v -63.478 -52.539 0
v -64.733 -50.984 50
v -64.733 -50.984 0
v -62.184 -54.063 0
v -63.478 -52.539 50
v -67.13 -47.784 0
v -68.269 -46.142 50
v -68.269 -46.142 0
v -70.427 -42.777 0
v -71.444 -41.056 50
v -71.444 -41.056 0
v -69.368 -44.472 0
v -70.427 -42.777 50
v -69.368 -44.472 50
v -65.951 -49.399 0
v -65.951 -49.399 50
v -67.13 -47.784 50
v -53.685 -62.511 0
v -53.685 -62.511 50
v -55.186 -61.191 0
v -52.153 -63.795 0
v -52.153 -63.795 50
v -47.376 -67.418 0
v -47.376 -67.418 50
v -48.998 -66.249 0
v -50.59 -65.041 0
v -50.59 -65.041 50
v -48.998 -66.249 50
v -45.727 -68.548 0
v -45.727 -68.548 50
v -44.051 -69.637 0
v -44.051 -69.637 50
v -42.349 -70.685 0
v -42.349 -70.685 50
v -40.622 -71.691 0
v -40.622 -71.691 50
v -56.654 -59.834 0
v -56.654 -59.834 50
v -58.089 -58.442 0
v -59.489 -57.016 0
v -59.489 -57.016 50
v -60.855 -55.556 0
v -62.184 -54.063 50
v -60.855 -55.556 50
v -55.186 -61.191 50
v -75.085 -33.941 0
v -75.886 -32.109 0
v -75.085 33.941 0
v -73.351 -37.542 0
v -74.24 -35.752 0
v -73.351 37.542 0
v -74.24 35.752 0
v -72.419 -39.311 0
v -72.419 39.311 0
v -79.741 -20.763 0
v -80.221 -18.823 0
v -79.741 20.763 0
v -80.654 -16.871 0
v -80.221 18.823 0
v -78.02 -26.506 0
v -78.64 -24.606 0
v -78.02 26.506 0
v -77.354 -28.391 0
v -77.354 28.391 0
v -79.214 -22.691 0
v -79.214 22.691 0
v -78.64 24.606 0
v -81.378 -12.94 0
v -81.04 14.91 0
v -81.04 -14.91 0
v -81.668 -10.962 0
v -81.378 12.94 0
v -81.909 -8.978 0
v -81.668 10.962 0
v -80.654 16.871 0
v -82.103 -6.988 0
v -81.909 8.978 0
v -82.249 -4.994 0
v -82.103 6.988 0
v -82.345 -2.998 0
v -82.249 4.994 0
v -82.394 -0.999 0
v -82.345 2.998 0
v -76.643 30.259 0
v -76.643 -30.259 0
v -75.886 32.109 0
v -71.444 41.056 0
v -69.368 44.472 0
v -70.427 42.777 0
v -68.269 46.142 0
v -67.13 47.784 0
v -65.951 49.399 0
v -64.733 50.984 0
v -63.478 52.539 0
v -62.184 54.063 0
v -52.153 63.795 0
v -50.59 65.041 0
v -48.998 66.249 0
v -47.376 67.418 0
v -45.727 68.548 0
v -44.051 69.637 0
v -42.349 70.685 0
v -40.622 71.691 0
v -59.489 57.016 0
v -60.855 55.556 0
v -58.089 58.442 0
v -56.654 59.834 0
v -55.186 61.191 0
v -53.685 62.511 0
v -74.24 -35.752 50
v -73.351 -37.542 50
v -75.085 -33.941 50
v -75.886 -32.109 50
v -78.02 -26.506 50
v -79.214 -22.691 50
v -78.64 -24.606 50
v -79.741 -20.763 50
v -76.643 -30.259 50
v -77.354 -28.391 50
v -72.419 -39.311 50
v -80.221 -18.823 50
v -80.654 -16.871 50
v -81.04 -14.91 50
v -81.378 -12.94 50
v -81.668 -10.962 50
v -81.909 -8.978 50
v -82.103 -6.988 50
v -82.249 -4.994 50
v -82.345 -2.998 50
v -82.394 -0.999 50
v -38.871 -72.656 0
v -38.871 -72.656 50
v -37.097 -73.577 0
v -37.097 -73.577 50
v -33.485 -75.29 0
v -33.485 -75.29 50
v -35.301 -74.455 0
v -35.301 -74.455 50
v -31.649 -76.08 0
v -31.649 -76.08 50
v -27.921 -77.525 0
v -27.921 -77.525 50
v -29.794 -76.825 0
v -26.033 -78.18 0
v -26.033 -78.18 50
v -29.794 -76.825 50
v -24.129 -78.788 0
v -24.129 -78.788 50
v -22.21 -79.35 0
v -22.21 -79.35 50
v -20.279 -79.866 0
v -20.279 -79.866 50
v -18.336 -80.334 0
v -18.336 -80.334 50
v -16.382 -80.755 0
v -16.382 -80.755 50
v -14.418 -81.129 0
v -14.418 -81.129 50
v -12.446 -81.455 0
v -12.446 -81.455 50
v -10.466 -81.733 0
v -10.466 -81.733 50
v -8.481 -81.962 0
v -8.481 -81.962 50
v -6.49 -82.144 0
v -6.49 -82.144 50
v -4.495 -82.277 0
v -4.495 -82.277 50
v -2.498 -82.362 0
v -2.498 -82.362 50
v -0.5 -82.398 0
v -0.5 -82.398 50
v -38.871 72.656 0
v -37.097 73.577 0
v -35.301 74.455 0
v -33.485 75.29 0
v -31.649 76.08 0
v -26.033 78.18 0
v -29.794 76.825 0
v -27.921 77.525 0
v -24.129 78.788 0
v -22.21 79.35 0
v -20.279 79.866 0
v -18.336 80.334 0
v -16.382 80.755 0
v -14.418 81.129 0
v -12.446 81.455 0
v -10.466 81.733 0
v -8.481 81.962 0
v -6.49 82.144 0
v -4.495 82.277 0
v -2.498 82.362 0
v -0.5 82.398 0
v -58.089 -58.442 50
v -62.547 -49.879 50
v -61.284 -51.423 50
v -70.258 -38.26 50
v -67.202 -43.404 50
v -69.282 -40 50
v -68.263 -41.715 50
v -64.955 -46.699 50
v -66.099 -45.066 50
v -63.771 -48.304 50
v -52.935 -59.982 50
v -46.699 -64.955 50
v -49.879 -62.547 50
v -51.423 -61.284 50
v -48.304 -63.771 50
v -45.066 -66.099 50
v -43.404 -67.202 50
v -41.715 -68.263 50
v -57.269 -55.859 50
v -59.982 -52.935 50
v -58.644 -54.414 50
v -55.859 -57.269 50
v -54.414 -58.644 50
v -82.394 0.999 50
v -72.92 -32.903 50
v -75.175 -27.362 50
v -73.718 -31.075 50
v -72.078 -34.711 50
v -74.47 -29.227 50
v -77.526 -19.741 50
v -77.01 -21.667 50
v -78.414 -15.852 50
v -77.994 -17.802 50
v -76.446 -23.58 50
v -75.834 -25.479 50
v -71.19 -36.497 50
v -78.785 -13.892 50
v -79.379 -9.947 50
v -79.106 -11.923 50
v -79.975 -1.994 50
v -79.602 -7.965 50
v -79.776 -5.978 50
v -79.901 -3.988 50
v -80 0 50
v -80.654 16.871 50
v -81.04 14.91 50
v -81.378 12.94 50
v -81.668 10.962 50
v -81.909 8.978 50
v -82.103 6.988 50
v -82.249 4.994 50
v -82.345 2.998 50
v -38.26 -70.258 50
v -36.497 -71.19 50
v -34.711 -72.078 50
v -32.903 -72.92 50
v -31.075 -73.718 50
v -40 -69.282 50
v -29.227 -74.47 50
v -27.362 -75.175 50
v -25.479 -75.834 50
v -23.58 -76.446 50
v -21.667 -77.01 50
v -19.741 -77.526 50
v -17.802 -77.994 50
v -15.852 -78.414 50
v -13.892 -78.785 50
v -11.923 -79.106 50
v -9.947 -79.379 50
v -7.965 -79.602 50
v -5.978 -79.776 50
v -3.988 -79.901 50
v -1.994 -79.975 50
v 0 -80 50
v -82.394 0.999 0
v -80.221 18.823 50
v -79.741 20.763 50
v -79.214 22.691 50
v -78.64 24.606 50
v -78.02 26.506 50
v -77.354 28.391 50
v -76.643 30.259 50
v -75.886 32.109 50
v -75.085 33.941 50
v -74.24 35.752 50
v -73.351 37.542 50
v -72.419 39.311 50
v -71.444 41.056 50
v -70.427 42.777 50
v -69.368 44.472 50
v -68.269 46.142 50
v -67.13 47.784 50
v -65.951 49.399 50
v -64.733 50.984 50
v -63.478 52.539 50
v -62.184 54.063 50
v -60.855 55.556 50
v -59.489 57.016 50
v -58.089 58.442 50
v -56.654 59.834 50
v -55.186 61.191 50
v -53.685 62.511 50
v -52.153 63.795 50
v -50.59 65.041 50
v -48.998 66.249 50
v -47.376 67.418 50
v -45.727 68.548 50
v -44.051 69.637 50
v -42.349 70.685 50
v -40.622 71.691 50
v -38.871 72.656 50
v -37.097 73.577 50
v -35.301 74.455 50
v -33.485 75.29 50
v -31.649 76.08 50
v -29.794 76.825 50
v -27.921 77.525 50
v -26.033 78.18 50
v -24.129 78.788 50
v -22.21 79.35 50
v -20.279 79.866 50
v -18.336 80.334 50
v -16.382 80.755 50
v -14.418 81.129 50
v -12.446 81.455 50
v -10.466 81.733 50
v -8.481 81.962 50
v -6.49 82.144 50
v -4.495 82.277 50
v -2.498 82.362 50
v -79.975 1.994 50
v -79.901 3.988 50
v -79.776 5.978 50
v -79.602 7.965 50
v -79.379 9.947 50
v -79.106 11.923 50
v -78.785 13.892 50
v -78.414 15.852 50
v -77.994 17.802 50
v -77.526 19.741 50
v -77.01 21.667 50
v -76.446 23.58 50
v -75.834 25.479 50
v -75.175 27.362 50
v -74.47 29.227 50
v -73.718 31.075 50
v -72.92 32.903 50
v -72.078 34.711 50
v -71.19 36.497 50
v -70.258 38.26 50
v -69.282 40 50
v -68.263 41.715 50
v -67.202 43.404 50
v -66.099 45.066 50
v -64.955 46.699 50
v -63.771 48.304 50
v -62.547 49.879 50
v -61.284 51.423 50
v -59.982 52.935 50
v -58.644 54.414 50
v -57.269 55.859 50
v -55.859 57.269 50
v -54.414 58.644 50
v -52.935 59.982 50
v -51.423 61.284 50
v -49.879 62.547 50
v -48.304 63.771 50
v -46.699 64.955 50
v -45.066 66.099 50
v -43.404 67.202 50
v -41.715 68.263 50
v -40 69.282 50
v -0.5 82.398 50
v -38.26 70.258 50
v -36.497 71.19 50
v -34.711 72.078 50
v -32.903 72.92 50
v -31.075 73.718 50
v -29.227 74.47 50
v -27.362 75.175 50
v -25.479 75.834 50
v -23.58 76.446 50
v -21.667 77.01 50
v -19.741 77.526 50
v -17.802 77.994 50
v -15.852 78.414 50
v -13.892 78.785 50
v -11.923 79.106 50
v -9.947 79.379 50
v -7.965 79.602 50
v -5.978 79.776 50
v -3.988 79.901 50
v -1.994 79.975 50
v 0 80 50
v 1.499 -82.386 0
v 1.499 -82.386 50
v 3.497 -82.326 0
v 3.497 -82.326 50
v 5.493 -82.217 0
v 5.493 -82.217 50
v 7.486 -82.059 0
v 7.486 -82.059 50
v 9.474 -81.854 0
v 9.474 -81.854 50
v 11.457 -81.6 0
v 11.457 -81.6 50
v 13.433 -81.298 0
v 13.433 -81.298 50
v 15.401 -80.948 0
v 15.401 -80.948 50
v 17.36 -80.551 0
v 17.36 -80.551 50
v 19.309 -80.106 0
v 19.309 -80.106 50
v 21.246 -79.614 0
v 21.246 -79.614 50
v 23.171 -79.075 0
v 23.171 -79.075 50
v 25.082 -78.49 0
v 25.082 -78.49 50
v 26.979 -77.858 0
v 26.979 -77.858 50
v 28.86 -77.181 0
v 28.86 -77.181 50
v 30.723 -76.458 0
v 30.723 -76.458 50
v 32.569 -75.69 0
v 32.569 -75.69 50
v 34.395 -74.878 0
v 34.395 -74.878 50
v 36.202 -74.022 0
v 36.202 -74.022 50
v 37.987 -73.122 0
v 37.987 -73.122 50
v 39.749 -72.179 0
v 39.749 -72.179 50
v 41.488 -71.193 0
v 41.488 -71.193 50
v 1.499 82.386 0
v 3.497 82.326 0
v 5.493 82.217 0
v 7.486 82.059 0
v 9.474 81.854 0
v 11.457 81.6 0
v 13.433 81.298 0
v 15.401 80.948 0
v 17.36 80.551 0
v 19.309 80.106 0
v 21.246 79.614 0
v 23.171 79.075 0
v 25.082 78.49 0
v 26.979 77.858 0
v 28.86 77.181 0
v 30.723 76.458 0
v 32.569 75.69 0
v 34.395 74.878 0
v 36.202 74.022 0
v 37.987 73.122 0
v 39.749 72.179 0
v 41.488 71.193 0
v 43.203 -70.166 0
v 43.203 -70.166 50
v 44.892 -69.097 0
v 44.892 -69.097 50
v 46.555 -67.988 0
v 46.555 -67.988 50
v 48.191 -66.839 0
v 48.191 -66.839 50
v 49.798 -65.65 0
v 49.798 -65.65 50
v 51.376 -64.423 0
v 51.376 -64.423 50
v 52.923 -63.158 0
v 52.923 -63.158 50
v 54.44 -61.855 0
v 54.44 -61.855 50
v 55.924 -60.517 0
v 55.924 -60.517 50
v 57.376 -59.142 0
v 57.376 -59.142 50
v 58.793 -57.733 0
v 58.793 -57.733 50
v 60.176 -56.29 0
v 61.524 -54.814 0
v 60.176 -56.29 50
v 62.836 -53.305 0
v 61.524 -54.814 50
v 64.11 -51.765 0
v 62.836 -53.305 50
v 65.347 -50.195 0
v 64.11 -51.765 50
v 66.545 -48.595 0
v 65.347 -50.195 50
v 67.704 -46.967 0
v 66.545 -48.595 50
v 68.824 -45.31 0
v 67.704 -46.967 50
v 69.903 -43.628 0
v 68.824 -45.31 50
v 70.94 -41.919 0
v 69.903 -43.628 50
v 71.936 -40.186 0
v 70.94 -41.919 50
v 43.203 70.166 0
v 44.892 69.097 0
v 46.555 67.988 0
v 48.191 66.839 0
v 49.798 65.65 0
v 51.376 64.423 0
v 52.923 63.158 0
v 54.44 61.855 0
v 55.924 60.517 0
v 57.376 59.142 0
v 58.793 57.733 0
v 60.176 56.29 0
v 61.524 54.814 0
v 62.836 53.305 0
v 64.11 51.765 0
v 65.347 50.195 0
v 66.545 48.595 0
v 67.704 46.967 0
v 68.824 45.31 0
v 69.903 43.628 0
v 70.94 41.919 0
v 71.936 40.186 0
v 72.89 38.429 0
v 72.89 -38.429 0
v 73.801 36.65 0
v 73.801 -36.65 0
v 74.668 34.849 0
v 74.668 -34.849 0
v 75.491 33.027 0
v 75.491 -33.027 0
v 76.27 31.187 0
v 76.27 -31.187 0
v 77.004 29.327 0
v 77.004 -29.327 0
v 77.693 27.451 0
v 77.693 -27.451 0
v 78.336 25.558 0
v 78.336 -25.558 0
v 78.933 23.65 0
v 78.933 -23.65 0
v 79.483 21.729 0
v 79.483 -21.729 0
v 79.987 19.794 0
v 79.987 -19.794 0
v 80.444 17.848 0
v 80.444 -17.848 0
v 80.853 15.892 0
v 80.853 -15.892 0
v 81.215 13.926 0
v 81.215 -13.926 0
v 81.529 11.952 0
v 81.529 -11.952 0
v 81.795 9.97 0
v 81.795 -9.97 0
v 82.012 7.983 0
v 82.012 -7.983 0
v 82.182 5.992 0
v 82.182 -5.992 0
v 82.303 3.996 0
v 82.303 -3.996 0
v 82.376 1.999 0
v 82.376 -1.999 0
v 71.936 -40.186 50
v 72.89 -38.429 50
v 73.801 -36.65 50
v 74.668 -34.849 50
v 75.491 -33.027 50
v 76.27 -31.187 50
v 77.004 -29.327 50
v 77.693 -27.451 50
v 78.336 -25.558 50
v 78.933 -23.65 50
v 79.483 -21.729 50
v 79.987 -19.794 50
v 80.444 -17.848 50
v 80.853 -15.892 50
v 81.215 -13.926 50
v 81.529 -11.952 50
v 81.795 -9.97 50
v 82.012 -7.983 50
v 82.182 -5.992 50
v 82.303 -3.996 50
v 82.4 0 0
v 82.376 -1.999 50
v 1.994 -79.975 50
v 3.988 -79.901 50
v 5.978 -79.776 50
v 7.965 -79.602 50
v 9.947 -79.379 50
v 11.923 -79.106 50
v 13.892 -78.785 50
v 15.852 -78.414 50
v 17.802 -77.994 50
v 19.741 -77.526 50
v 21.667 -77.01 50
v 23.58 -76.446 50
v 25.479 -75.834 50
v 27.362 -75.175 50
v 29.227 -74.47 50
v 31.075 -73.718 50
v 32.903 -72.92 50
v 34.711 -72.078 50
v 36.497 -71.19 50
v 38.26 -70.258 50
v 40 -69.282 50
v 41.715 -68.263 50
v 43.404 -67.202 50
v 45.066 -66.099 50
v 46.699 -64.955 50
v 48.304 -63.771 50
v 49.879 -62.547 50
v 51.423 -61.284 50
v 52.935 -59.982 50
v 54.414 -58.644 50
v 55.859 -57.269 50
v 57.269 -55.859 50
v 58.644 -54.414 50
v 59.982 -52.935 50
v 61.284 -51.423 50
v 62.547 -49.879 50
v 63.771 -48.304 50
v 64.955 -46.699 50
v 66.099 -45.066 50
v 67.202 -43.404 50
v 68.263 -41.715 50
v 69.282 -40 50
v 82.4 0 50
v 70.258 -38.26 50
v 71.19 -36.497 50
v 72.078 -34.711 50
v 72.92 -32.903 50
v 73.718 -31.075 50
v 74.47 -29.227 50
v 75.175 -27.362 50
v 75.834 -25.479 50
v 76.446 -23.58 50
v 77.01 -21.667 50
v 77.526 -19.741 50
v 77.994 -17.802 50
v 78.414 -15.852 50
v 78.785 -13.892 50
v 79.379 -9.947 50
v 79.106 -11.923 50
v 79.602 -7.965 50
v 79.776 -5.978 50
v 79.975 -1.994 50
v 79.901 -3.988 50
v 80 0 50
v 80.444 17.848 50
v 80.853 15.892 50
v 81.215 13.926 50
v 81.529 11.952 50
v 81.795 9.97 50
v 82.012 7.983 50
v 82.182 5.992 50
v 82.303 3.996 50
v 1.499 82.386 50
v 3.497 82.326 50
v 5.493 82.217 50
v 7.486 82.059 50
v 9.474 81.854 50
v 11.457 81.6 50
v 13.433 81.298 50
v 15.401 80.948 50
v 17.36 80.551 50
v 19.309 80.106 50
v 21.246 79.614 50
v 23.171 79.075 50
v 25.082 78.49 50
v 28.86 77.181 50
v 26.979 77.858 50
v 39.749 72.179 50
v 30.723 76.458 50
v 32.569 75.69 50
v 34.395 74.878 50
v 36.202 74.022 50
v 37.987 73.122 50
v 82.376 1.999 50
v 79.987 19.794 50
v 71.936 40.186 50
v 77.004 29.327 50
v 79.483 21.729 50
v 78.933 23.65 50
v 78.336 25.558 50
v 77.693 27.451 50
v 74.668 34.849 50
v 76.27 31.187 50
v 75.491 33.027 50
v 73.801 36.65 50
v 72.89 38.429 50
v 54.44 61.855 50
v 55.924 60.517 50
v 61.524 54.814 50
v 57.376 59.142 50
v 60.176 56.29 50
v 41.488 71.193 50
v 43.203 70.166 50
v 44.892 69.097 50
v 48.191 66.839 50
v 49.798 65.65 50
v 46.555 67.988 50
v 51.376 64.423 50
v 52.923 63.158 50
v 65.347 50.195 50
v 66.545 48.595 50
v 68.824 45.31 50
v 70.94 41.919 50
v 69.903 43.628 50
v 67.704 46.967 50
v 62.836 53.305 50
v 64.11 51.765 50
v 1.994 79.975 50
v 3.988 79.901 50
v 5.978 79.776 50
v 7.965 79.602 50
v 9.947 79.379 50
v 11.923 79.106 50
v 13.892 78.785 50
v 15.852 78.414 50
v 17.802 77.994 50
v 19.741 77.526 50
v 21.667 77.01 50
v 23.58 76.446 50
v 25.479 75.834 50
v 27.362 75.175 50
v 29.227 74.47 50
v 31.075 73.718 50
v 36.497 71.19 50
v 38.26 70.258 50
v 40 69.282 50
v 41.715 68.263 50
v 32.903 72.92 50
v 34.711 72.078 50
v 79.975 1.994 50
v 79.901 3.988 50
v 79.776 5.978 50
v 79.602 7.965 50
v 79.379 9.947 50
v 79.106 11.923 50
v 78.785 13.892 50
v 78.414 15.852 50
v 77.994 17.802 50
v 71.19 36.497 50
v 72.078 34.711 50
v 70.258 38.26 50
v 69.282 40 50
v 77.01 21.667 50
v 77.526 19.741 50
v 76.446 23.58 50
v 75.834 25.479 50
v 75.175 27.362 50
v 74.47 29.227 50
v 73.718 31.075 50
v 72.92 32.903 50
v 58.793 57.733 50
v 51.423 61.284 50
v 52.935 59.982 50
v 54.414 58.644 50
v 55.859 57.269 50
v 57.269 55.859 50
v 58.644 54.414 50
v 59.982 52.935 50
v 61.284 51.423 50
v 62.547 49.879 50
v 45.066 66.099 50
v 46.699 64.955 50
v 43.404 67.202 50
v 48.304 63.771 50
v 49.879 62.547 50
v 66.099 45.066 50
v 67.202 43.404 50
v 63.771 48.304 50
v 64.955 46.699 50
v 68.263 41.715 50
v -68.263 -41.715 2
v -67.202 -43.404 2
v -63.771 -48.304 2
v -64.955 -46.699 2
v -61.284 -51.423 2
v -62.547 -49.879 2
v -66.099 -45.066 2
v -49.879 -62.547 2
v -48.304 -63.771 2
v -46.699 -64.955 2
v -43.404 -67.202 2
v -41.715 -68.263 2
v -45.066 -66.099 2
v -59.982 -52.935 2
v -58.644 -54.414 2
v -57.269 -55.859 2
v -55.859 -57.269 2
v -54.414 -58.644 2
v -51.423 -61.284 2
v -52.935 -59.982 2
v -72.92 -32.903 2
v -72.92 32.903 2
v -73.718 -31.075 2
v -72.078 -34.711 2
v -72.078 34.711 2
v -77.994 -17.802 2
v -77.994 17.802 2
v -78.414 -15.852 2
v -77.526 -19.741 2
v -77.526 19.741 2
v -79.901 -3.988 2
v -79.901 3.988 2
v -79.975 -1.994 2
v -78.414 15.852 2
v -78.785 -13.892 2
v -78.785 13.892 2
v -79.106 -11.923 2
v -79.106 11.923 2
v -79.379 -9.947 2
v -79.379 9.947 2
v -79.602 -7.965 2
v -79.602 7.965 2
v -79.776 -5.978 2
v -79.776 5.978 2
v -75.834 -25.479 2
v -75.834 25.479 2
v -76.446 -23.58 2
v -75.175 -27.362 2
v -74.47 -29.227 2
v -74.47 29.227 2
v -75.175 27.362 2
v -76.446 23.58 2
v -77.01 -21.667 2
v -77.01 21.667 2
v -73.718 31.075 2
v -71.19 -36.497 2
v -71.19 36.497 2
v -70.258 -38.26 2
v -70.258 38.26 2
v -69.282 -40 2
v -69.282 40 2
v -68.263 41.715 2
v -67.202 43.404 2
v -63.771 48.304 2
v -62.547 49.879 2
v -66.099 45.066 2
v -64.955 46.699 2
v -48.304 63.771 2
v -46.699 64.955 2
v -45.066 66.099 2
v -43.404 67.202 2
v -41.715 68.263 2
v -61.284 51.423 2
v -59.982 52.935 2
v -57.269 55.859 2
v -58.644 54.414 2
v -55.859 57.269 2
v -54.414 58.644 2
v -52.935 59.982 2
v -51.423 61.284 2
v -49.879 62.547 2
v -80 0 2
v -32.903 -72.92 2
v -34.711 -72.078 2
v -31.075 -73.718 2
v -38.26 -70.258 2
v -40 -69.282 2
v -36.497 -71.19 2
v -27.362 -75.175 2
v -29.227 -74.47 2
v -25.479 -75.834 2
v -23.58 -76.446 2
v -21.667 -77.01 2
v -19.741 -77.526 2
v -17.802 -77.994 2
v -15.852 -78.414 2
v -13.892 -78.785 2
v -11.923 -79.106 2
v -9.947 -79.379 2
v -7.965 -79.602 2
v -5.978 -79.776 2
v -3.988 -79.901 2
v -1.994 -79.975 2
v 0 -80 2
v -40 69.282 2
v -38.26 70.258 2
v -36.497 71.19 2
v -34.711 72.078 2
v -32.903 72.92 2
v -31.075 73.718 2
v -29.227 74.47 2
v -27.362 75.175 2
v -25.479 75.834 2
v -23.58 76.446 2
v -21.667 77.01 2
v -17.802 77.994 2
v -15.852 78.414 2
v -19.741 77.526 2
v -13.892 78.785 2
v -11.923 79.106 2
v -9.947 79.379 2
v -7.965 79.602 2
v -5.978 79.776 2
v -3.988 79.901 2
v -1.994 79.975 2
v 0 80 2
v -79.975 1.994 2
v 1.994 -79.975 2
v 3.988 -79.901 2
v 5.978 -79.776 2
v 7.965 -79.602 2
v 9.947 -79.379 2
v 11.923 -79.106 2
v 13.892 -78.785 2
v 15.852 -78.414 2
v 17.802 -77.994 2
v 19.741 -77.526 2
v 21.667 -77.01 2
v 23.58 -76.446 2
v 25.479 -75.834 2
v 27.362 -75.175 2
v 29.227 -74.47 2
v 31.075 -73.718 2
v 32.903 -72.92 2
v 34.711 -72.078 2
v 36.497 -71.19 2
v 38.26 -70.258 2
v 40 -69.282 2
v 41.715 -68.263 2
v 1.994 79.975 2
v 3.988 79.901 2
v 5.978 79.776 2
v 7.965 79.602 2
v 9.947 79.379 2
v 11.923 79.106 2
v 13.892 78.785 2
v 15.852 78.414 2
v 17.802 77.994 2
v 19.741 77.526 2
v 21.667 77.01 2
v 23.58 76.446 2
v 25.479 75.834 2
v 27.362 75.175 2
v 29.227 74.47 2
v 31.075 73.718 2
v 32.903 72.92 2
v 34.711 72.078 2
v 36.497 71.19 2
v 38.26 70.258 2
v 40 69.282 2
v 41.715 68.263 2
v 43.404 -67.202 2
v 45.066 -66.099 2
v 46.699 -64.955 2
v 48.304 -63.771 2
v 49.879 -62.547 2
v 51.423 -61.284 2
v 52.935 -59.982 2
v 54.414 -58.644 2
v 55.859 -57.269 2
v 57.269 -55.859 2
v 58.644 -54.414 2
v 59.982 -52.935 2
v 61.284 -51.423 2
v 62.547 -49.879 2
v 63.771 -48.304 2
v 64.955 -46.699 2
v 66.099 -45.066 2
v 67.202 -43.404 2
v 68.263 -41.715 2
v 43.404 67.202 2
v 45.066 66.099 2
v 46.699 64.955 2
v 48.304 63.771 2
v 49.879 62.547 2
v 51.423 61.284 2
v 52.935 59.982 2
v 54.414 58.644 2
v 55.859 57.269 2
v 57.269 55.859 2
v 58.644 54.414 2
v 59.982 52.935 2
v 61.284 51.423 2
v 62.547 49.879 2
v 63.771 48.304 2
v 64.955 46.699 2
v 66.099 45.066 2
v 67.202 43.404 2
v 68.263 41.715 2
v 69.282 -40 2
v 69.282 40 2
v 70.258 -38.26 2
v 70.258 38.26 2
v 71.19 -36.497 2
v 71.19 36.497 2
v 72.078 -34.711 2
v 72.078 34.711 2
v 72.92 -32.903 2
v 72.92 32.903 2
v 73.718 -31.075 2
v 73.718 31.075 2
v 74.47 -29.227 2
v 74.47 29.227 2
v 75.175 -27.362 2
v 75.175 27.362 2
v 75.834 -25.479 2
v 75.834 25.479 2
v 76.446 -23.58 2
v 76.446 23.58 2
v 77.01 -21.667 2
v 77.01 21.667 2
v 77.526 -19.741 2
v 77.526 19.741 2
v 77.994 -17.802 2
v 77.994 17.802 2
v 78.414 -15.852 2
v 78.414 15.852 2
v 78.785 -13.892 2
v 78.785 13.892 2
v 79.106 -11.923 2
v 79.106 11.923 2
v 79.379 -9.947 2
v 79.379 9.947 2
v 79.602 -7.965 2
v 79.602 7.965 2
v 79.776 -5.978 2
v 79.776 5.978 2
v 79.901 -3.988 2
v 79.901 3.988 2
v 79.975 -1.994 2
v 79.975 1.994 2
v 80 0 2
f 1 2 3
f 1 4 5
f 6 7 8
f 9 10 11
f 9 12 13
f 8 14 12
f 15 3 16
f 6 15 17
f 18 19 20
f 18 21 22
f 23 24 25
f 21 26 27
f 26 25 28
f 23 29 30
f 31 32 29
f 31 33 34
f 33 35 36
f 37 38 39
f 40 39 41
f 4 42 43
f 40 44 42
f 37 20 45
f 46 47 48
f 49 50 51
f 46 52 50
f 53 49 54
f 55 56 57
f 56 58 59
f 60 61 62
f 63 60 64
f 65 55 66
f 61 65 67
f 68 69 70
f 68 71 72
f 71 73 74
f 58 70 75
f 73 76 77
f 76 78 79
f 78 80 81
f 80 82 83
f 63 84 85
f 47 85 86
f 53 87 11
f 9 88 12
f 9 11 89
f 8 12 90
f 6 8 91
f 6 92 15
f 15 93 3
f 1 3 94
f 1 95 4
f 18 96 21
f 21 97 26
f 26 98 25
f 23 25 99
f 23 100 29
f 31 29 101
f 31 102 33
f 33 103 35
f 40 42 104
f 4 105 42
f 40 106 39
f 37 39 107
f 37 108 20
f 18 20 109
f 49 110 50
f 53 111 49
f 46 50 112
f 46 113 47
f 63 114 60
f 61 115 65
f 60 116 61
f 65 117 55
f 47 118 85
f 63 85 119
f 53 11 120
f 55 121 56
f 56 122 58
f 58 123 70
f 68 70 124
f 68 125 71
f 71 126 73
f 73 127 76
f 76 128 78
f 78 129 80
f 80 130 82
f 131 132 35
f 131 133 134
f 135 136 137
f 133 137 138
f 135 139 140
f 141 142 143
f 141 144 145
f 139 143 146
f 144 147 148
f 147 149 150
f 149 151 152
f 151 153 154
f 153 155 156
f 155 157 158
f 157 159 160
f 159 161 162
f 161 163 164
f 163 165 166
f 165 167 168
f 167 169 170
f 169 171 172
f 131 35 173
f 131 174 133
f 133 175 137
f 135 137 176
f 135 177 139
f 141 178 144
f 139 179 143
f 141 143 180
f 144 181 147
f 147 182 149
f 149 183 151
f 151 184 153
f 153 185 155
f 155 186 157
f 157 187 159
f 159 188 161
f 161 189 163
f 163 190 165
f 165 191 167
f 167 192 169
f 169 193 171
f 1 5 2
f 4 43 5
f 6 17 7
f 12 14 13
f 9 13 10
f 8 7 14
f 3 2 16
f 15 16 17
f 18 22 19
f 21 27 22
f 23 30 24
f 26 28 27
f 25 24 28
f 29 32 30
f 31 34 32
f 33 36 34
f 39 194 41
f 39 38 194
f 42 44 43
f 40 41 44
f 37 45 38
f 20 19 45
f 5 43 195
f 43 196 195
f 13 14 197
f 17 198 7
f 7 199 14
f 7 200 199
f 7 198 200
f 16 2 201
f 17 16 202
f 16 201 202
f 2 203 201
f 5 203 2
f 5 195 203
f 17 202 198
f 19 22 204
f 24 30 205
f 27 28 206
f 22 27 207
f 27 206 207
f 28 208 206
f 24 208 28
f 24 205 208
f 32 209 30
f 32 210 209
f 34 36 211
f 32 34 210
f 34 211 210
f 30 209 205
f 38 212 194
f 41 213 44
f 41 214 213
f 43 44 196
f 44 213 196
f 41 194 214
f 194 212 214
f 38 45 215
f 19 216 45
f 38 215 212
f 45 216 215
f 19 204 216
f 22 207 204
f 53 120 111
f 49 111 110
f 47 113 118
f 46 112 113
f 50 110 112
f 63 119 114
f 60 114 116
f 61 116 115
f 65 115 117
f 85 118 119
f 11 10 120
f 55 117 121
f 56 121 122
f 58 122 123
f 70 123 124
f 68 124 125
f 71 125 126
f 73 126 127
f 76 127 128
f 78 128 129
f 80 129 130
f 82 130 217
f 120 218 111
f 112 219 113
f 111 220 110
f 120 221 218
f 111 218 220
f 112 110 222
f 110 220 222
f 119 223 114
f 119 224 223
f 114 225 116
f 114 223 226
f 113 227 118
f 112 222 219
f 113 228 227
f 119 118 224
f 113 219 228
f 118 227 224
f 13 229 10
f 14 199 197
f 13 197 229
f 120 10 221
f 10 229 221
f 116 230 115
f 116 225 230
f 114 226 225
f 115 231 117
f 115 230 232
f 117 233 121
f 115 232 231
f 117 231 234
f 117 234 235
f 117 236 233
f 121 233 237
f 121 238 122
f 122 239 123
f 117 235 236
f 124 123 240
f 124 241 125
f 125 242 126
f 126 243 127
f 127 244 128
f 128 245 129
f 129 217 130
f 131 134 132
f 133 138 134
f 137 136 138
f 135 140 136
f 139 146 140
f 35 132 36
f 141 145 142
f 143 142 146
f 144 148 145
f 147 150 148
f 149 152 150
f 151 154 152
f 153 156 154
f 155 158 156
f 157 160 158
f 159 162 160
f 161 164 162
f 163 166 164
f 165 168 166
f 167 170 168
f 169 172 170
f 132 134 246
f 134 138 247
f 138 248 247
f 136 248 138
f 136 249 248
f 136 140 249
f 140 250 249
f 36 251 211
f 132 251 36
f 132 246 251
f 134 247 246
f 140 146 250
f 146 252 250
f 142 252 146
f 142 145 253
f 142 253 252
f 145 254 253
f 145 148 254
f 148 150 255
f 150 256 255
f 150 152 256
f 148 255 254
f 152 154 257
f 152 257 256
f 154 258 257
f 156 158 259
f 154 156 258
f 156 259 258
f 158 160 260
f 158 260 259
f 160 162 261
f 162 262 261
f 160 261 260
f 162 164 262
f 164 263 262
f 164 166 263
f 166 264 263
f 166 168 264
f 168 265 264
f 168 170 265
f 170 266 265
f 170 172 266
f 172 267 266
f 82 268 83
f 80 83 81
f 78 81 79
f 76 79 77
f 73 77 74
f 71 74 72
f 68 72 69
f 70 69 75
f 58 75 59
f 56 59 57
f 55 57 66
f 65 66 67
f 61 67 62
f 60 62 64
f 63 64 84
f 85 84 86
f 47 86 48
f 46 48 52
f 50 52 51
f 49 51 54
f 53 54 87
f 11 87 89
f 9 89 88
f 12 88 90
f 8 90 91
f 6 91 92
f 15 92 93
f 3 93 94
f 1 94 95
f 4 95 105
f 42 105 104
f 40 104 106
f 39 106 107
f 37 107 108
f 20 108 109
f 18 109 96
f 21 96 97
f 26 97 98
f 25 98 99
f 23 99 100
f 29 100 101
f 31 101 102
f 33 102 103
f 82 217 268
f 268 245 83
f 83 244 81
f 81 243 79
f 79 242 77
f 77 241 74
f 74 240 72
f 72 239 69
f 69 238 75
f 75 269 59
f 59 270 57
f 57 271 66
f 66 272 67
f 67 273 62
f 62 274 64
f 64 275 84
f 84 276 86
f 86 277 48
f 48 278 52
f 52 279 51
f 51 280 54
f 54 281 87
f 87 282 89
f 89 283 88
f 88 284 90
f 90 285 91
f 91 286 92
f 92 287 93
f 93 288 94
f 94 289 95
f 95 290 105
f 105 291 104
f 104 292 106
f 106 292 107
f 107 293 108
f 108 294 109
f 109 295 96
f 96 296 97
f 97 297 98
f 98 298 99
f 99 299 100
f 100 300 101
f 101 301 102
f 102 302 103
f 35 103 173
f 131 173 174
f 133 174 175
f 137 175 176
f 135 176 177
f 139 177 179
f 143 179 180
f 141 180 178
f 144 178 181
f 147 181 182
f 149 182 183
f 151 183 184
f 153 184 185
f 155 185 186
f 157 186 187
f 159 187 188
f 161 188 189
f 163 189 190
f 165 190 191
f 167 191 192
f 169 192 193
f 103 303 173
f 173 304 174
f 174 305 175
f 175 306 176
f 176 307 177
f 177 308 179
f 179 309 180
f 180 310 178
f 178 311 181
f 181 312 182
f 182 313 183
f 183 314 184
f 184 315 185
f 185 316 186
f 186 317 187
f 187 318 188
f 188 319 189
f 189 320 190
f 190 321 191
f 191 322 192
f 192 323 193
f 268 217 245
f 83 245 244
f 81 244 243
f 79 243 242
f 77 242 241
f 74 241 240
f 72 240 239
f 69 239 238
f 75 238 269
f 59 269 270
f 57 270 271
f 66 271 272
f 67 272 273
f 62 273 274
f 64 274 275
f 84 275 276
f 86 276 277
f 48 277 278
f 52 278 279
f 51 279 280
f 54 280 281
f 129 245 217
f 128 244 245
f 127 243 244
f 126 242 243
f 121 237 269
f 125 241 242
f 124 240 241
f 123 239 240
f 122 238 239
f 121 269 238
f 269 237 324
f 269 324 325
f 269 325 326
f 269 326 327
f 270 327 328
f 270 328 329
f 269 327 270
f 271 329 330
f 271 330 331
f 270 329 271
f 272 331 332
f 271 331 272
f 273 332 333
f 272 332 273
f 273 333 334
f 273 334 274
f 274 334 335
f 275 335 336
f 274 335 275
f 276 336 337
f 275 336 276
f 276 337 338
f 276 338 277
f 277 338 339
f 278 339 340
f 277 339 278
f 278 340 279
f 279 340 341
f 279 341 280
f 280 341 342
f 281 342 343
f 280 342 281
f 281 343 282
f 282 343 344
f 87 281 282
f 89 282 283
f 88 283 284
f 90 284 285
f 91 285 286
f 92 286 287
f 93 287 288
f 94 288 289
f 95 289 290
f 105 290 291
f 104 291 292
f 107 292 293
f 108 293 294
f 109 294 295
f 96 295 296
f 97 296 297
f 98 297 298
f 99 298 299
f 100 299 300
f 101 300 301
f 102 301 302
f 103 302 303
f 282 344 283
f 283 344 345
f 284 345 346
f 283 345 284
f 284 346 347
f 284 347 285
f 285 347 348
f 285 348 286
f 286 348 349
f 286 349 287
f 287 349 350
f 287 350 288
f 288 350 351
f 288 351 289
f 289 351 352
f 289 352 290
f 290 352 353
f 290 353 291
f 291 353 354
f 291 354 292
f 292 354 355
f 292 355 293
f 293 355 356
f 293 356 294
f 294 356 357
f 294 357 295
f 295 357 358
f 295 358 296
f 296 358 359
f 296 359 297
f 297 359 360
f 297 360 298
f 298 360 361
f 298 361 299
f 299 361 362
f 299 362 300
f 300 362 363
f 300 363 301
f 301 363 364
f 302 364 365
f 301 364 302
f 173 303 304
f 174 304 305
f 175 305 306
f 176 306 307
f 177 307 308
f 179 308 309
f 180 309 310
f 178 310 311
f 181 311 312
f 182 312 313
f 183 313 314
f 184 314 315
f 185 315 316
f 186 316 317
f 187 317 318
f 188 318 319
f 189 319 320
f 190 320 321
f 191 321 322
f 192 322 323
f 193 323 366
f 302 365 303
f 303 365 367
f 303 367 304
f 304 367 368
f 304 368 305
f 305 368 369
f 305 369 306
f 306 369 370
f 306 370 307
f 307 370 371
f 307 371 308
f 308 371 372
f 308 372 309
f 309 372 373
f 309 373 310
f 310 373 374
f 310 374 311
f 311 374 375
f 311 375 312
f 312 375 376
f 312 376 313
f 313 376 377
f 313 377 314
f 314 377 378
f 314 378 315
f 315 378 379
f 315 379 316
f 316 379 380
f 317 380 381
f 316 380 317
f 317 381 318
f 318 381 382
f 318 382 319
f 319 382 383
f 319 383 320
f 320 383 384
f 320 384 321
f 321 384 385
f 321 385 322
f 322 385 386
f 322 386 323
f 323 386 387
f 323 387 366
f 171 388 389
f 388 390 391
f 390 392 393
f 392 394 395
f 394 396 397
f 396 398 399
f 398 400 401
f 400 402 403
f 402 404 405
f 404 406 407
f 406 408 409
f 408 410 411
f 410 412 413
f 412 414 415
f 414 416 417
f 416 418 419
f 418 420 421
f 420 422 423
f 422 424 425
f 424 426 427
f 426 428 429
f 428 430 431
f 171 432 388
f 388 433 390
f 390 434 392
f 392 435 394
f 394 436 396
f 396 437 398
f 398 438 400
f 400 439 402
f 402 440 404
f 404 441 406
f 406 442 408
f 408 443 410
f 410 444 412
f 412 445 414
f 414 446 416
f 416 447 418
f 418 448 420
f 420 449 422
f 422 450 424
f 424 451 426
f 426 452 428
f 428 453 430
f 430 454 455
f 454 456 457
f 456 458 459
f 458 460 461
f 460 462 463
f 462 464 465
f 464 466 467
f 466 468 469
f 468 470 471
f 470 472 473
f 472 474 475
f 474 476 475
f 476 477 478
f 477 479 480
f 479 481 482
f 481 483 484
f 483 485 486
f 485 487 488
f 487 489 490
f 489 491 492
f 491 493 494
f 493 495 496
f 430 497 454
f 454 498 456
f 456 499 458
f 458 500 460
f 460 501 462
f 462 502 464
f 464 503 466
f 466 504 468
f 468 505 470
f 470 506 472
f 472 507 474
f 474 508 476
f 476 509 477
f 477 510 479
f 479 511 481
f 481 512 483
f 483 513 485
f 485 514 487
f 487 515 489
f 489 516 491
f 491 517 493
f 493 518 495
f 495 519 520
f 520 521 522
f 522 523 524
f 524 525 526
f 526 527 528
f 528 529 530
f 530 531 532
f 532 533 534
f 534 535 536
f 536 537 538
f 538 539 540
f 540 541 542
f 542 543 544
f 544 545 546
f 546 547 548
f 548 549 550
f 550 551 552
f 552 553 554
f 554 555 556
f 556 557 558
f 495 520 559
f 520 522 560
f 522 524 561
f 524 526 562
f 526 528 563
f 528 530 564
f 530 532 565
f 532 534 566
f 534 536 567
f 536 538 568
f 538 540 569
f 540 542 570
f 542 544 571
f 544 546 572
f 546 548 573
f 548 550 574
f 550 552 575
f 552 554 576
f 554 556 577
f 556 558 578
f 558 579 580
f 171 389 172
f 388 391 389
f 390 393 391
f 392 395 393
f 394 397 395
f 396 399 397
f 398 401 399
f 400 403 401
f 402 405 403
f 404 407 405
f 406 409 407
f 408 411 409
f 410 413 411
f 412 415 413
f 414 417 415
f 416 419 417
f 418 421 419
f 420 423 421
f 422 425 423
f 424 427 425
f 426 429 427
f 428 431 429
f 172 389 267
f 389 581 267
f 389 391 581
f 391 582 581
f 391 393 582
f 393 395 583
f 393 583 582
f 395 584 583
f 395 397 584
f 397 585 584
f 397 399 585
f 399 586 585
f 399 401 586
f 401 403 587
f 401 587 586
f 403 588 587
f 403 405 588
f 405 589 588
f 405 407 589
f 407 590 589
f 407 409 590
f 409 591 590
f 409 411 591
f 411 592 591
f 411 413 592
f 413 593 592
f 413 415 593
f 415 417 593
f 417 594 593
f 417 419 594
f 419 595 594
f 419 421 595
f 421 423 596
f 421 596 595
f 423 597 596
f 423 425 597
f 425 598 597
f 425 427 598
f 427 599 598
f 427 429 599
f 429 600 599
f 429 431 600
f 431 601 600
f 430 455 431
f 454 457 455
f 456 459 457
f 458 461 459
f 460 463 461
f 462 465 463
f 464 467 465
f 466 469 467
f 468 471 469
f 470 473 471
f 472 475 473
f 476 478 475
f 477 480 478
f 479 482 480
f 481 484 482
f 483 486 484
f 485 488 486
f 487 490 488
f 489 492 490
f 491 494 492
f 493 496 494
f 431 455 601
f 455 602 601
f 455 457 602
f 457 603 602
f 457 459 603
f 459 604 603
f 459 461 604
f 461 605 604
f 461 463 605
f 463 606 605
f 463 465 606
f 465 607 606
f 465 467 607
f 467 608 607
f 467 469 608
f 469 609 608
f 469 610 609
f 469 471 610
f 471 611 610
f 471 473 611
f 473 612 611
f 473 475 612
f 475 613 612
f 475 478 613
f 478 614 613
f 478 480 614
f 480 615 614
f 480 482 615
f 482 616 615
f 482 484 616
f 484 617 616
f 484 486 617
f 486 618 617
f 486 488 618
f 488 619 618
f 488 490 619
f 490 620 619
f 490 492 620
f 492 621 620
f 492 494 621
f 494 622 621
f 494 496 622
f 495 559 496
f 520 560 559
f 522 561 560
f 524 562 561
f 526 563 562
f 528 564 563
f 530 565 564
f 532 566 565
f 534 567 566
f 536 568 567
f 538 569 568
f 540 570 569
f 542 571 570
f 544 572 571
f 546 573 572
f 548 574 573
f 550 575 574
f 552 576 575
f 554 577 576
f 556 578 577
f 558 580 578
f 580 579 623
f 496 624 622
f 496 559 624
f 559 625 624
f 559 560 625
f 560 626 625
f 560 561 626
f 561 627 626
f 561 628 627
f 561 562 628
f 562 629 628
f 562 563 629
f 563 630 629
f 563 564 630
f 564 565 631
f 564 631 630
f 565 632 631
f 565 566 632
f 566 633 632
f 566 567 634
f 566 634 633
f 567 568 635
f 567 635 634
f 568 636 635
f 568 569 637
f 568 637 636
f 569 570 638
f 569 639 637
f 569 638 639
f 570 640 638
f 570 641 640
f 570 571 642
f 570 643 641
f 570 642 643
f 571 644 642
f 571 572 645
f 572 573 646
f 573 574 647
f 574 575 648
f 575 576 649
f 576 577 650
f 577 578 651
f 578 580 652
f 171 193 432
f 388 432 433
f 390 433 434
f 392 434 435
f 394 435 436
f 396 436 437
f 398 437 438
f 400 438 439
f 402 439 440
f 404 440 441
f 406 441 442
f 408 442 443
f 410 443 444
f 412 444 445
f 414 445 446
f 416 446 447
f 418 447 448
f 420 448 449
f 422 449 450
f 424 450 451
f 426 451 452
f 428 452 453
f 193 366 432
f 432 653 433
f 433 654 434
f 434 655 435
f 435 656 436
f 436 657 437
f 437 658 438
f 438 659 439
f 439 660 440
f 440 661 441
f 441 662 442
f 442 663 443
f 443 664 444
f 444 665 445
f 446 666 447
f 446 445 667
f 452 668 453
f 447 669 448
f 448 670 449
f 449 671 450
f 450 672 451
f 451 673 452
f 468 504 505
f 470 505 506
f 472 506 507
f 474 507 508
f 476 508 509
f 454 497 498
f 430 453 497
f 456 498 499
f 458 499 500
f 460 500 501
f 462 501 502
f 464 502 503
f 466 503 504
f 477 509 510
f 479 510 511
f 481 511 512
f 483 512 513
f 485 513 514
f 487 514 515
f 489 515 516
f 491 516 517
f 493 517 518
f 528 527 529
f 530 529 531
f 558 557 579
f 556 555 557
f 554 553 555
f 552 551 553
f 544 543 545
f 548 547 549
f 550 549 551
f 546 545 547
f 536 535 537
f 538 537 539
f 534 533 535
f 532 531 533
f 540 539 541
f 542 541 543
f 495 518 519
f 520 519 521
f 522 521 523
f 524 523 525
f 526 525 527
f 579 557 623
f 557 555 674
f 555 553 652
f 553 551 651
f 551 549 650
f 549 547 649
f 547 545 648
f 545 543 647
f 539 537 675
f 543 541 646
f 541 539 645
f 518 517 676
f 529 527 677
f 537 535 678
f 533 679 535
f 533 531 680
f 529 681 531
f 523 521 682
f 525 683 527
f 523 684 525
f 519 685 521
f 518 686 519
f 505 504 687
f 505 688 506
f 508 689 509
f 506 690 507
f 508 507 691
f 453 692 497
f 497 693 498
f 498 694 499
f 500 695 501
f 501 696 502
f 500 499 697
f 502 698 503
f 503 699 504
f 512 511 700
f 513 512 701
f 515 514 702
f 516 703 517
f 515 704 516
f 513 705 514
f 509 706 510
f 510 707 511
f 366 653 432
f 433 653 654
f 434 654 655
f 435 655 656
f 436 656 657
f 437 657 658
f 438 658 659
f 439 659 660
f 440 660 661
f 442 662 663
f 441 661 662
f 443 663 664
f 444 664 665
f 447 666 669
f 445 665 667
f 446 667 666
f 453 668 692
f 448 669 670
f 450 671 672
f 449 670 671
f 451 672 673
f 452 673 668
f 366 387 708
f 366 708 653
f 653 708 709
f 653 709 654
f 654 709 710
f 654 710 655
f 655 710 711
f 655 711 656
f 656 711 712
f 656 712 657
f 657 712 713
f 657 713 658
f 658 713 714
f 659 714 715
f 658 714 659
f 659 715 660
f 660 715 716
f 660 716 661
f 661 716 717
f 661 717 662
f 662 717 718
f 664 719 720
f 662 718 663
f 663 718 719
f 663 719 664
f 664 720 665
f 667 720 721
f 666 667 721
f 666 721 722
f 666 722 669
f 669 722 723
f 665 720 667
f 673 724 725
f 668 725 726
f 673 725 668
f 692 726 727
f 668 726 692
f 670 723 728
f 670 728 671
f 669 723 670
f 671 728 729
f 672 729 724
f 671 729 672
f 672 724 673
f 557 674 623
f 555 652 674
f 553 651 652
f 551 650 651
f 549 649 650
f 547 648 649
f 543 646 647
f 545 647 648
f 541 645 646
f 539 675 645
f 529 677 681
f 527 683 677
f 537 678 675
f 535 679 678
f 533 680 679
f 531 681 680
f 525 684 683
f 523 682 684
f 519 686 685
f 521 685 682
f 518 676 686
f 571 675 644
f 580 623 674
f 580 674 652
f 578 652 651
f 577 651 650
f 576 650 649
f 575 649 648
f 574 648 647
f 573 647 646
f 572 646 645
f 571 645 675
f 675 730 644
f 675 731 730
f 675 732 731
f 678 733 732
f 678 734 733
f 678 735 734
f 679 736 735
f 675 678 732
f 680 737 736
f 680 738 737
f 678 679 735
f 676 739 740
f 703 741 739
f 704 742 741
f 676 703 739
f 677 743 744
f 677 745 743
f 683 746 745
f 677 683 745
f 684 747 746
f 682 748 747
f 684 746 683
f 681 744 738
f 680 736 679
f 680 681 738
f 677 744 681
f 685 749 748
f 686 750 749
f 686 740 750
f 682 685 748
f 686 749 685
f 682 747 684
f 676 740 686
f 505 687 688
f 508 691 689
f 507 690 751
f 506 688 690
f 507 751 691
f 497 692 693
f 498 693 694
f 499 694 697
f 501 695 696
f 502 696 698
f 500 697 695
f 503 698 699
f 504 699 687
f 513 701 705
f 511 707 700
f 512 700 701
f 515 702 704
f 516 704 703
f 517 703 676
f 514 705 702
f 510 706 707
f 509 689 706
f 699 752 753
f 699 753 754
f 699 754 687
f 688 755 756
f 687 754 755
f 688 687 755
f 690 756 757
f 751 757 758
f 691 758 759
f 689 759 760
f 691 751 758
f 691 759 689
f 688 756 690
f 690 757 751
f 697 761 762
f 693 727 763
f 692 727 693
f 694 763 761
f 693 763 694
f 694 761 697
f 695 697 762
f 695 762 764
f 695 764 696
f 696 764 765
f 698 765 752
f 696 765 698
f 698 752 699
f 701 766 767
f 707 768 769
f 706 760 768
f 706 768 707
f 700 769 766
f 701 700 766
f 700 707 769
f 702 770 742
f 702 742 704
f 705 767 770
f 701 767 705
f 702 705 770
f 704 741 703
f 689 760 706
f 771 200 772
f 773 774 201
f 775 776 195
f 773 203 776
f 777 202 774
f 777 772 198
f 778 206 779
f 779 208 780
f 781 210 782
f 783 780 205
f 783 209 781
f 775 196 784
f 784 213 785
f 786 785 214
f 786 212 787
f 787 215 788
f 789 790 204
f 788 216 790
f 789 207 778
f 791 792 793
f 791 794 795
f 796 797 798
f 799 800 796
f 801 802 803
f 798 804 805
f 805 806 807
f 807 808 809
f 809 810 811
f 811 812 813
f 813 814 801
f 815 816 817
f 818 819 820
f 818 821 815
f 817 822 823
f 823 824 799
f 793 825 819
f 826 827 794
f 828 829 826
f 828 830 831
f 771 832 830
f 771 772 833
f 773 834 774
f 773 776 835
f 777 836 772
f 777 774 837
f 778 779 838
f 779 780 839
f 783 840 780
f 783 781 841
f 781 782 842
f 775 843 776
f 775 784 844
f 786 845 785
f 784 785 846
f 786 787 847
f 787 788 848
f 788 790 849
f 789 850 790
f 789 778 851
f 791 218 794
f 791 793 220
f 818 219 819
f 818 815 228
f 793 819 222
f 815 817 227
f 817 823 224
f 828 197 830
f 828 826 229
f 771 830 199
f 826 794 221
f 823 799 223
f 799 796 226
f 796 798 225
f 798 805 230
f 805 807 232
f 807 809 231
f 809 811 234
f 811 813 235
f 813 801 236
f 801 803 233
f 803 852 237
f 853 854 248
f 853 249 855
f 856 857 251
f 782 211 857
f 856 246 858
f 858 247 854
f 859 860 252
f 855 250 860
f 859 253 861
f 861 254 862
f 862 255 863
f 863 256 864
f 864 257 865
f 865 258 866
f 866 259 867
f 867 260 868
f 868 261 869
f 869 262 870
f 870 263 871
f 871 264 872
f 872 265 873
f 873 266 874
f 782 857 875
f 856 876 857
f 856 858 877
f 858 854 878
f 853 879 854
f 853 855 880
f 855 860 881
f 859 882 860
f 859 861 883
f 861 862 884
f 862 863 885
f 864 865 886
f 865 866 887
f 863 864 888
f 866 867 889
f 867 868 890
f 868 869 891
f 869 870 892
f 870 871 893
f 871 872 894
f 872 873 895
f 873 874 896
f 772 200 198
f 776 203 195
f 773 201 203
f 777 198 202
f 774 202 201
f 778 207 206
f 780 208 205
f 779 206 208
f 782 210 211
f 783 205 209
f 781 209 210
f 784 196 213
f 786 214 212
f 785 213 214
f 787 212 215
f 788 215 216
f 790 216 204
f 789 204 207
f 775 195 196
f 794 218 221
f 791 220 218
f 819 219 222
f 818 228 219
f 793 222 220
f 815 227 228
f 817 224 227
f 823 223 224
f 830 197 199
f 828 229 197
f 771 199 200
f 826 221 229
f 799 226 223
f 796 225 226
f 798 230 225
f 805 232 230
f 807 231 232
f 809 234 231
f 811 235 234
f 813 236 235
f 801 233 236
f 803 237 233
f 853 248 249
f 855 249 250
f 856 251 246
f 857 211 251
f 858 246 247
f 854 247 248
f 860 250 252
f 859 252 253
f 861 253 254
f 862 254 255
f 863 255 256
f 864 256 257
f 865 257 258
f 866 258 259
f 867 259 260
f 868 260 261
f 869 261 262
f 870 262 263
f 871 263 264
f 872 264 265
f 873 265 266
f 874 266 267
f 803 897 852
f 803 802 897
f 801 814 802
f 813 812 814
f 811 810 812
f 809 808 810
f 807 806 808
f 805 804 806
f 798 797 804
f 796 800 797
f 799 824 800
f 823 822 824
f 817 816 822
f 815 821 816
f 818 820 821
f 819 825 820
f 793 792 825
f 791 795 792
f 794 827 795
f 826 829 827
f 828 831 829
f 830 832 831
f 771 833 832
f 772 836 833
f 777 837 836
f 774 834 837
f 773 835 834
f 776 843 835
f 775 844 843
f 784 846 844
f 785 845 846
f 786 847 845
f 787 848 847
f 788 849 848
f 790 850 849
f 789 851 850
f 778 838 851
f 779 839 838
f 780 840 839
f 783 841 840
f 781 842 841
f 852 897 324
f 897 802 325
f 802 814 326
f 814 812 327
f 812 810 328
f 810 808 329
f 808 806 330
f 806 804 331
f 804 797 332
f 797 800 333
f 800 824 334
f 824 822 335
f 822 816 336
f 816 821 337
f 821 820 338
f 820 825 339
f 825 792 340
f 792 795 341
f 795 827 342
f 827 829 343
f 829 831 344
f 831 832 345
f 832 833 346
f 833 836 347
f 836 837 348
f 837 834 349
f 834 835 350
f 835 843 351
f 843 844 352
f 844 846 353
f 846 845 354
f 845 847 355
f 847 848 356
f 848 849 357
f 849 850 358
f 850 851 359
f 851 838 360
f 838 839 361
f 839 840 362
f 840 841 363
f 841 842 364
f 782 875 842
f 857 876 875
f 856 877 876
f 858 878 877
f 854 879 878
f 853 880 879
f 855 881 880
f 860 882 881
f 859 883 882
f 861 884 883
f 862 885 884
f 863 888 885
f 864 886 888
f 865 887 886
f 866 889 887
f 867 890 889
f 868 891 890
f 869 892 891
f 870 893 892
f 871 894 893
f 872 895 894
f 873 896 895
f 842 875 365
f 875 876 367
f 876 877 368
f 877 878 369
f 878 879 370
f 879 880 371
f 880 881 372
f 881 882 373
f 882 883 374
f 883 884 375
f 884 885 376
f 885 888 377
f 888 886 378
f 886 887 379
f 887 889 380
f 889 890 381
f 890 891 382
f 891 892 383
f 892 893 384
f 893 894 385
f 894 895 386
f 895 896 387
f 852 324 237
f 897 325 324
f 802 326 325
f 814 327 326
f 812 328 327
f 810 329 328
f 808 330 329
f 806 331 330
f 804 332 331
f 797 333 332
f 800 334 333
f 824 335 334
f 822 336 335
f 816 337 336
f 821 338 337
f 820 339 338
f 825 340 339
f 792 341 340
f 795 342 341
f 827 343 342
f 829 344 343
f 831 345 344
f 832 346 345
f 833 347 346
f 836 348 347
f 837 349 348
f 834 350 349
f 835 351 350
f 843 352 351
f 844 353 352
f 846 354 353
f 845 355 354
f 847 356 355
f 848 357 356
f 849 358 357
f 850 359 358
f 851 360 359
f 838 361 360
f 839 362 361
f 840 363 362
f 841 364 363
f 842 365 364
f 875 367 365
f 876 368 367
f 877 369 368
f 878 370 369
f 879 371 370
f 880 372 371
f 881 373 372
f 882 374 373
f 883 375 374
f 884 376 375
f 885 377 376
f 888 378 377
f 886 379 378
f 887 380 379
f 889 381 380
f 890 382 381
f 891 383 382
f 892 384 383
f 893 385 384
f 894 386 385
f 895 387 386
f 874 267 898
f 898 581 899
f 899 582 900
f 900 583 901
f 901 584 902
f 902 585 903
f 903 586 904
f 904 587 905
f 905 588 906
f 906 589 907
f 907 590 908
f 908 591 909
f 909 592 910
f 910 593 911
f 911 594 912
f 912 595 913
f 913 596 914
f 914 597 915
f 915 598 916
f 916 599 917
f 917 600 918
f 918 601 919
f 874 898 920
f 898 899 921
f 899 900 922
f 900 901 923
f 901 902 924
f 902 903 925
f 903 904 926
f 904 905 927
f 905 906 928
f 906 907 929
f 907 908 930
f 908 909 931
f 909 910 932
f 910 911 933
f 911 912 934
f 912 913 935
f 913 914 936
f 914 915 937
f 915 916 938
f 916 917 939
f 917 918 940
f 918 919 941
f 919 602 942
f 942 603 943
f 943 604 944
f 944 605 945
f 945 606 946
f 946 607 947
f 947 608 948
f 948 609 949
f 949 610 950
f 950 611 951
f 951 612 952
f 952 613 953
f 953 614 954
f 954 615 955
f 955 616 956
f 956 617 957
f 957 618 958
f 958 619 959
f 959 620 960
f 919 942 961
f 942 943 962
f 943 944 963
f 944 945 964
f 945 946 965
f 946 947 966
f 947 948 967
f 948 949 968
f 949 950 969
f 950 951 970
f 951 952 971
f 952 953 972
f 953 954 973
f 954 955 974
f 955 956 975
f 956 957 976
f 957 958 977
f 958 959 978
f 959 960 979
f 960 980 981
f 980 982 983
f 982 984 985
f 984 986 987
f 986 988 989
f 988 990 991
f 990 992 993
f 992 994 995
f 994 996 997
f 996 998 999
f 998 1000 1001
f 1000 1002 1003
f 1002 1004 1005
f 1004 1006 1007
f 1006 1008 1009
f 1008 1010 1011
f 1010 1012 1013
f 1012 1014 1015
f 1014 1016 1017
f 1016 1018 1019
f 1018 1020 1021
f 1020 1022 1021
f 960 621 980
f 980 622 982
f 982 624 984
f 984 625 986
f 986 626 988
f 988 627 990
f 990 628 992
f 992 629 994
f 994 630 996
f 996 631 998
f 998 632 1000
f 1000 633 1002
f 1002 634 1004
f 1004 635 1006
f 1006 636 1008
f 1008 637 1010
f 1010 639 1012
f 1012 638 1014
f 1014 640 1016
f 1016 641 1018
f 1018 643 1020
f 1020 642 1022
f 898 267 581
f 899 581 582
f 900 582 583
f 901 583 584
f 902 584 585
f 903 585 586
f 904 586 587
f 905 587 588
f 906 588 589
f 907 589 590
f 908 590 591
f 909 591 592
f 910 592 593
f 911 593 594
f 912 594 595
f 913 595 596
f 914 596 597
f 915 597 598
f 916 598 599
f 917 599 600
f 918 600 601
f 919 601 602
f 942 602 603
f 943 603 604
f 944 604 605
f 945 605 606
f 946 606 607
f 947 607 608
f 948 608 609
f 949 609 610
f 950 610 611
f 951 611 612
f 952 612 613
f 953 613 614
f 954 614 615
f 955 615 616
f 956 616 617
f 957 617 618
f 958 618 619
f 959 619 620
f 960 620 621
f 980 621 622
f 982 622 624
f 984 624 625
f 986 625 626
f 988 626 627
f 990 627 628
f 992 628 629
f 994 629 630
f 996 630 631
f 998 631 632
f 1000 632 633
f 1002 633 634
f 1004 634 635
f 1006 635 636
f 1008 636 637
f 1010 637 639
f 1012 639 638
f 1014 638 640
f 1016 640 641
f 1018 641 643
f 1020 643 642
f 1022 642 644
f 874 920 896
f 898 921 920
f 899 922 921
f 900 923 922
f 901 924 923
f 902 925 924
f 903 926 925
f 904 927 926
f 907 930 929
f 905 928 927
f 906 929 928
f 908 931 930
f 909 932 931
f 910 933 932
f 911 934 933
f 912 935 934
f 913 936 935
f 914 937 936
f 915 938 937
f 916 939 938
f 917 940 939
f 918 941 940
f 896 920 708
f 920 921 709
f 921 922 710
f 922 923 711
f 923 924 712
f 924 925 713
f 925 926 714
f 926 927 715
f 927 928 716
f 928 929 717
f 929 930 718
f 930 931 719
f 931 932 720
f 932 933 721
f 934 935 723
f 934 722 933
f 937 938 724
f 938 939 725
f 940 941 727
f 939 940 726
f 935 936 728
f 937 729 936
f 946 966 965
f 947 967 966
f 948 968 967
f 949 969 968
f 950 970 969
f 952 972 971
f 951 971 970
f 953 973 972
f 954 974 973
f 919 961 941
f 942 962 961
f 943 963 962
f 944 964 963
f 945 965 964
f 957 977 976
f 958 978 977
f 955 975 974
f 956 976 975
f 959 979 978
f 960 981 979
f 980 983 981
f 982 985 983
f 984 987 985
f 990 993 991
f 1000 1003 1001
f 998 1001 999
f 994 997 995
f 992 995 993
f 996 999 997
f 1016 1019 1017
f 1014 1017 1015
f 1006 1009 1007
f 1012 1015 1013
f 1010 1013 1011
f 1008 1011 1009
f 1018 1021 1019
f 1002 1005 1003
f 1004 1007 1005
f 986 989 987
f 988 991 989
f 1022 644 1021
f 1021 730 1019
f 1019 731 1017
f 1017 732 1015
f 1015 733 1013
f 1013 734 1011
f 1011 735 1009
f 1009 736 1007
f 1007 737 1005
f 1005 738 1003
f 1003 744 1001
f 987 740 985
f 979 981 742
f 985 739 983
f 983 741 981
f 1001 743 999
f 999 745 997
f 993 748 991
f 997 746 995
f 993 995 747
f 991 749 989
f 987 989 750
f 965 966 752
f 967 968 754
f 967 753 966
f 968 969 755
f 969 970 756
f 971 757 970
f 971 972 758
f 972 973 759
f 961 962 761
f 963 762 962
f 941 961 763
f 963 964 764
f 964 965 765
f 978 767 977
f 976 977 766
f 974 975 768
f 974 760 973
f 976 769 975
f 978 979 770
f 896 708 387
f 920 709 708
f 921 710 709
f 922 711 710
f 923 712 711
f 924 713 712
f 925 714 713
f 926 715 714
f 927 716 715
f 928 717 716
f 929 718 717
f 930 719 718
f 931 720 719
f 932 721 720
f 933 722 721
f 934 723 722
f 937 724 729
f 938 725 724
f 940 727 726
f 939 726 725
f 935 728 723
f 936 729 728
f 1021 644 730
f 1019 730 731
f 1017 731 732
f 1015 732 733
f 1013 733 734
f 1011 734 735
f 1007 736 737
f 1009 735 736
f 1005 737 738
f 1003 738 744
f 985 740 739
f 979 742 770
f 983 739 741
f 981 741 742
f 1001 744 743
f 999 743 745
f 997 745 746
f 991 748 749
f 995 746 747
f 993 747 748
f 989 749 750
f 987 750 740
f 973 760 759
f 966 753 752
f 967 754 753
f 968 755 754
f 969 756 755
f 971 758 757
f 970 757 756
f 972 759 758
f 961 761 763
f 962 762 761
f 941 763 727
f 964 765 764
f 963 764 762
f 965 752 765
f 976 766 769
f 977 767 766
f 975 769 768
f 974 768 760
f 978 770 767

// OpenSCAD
// coffee filter holder
$fa = 0.5;

diameter = 160;
height = 50;

difference() {
  cylinder(d = diameter*1.03, h = height);
  translate([0,0,2]) {
    #cylinder(d = diameter, h = height);
  }
}
